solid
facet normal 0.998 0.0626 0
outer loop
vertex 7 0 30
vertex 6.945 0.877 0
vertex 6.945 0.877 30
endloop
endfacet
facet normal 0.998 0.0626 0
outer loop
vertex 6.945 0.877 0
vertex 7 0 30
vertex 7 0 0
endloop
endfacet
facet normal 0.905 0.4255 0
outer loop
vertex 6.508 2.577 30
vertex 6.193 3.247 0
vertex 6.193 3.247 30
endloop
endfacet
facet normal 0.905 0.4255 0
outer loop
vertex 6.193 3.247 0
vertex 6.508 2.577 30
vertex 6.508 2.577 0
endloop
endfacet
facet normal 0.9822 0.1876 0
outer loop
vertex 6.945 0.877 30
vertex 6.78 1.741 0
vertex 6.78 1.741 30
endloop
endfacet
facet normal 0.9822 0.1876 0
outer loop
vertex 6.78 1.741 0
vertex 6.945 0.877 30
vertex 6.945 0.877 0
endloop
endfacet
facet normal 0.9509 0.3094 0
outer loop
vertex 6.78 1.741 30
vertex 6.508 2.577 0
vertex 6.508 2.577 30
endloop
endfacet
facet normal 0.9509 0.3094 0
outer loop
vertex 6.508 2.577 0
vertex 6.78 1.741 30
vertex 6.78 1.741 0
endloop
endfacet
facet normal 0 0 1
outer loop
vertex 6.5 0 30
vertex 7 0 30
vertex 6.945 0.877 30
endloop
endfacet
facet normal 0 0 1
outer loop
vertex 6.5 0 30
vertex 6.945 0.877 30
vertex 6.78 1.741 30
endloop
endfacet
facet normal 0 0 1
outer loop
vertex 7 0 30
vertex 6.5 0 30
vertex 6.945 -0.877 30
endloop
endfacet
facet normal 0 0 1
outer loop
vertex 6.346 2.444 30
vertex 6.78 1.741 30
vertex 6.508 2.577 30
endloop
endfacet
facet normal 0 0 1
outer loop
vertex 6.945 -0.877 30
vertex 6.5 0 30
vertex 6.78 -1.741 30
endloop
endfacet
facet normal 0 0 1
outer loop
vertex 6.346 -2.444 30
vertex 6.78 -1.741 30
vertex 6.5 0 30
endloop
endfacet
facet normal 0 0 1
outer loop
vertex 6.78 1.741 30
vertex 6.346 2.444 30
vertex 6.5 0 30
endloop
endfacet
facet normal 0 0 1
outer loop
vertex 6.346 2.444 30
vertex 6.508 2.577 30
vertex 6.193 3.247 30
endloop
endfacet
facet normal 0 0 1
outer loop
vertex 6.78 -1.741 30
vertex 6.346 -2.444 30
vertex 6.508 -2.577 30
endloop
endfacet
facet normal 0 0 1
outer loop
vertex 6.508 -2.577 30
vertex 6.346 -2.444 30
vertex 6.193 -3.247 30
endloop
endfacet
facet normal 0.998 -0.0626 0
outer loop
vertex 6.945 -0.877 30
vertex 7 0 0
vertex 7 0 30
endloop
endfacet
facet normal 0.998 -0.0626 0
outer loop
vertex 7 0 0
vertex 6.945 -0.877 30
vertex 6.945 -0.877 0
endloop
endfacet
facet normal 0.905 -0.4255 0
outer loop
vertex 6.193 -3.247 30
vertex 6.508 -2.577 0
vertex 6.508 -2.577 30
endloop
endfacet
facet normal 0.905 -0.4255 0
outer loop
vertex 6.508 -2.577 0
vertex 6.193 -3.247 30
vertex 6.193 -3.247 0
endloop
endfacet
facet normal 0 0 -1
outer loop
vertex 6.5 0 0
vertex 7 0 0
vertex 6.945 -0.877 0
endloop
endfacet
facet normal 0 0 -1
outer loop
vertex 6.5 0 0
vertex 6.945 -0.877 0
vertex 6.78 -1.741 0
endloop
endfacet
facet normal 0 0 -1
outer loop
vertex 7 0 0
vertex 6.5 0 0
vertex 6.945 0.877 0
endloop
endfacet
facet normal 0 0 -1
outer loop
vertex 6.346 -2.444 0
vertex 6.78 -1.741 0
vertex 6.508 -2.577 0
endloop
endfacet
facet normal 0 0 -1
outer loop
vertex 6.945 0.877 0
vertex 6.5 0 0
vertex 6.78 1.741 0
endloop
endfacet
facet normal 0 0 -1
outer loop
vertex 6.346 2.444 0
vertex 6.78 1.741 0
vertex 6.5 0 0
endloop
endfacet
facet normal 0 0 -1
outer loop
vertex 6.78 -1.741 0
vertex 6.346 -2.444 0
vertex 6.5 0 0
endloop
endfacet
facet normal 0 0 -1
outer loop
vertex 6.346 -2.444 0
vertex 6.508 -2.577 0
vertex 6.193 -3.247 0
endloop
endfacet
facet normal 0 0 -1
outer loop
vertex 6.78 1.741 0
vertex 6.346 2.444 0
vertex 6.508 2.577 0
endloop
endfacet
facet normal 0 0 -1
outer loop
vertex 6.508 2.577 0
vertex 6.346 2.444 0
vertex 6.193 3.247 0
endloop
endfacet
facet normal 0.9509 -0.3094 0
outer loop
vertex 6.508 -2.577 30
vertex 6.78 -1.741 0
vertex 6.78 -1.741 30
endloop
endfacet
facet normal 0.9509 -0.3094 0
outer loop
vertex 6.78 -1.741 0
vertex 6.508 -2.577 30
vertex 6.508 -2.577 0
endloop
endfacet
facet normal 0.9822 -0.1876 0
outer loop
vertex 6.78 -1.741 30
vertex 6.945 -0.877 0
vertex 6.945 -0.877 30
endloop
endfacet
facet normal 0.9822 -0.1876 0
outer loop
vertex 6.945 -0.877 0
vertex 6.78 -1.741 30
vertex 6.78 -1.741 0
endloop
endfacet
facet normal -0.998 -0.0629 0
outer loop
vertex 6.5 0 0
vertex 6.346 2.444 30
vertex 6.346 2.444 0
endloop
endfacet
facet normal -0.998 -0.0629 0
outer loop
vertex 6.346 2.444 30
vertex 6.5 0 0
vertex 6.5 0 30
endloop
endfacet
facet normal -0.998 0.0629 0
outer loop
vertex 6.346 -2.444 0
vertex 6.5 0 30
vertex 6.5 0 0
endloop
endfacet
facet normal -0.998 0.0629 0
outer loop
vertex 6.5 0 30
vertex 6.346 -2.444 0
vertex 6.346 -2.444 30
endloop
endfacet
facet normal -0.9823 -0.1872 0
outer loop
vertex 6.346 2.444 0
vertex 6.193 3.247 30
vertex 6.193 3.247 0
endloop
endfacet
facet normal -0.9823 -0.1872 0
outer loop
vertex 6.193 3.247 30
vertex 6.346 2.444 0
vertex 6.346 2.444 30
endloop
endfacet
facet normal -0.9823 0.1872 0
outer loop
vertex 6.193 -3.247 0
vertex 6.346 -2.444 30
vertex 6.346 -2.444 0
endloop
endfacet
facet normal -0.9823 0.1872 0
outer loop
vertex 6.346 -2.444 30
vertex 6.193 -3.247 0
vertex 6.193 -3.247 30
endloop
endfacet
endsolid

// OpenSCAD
$fn = 50;


difference() {
	union() {
		cylinder(h = 30, r = 7.0000000000);
		translate(v = [-16.0000000000, 0, 0]) {
			cylinder(h = 30, r = 7.0000000000);
		}
	}
	union() {
		cylinder(h = 30, r = 3.2500000000);
		cylinder(h = 30, r = 1.8000000000);
		cylinder(h = 30, r = 1.8000000000);
		cylinder(h = 30, r = 1.8000000000);
		translate(v = [-20.5000000000, 0, 0]) {
			hull() {
				translate(v = [-3.7500000000, 0.0000000000, 0]) {
					cylinder(h = 30, r = 10.5000000000);
				}
				translate(v = [3.7500000000, 0.0000000000, 0]) {
					cylinder(h = 30, r = 10.5000000000);
				}
				translate(v = [-3.7500000000, -0.0000000000, 0]) {
					cylinder(h = 30, r = 10.5000000000);
				}
				translate(v = [3.7500000000, -0.0000000000, 0]) {
					cylinder(h = 30, r = 10.5000000000);
				}
			}
		}
		translate(v = [-13.0000000000, 0, 0.0000000000]) {
			cylinder(h = 30, r = 19.5000000000);
		}
	}
}
